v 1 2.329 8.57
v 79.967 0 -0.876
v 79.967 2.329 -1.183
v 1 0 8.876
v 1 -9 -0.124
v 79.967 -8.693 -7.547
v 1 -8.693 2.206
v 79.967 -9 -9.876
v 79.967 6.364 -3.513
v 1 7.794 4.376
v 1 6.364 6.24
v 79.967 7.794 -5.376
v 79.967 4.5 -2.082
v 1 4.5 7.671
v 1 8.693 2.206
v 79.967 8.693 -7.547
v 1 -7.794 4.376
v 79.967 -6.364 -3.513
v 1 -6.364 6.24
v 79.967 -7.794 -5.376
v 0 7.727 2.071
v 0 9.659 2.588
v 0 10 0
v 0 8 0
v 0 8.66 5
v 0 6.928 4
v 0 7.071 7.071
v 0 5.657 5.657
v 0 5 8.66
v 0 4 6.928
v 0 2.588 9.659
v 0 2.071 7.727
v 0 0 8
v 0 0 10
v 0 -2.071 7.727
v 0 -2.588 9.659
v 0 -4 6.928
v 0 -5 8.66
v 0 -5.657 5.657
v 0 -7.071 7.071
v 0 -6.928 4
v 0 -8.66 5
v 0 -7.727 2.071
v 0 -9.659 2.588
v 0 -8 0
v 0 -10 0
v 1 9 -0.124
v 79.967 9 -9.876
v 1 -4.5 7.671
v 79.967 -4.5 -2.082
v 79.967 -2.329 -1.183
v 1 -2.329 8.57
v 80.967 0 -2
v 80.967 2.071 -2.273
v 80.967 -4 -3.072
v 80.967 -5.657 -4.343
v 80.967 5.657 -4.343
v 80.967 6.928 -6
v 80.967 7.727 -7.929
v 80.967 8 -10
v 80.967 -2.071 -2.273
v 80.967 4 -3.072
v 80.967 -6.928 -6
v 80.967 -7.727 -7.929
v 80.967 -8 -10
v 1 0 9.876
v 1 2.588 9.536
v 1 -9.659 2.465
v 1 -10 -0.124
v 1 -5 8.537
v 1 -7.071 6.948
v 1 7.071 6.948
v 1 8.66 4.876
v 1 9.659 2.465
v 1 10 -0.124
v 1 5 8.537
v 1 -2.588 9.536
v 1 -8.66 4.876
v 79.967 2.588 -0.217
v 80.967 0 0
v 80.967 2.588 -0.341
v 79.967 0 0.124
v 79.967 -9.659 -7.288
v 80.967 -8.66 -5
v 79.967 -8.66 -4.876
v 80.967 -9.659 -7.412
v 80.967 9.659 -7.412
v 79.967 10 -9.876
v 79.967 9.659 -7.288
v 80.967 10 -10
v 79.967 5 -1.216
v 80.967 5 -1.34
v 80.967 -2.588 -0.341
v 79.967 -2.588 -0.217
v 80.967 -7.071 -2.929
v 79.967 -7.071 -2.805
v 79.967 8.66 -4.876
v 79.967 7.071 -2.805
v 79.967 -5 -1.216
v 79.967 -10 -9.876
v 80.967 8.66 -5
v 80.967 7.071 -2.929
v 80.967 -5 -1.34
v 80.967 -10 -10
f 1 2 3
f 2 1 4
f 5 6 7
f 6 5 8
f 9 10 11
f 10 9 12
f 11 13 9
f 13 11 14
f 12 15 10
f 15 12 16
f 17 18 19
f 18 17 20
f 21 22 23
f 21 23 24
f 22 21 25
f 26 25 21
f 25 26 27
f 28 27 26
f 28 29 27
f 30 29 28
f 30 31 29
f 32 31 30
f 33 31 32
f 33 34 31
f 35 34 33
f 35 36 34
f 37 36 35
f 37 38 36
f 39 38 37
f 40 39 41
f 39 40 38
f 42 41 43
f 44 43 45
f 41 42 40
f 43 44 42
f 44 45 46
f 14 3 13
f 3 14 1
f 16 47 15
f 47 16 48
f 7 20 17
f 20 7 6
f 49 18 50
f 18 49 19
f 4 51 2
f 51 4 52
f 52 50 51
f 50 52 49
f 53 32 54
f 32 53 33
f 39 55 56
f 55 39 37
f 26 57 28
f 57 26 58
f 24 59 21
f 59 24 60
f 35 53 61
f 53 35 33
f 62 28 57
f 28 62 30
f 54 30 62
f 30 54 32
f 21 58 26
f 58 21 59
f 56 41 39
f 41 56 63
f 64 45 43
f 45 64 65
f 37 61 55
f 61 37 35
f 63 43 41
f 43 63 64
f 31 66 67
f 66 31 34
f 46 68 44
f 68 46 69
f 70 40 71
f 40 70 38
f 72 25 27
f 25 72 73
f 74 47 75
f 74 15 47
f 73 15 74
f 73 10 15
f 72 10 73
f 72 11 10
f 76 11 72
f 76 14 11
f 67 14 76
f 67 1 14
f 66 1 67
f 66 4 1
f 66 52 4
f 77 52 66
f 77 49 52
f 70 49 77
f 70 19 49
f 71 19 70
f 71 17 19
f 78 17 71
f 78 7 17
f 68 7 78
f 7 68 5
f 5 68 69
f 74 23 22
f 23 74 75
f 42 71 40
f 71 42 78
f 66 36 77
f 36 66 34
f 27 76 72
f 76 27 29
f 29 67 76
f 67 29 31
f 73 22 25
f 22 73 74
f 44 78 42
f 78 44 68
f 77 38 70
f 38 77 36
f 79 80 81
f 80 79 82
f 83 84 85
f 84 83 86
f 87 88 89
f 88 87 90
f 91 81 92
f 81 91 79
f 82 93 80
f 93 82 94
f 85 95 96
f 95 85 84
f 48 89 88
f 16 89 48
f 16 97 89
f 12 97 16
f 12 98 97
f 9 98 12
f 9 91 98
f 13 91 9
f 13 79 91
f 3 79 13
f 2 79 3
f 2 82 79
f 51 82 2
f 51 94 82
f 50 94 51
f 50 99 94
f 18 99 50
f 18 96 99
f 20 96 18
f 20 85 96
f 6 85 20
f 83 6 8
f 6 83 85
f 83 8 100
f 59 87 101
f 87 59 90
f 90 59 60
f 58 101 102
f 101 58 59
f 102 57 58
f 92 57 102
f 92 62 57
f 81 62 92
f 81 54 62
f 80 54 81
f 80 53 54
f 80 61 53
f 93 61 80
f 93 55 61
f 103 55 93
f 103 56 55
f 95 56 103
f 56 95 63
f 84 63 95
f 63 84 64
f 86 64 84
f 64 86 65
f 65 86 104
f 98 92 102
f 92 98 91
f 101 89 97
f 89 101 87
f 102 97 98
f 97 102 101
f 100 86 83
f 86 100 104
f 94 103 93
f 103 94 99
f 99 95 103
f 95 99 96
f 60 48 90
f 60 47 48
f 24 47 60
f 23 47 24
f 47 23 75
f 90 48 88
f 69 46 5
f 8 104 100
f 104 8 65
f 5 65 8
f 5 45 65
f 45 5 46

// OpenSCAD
// file: ../build_environments.scad
// build_environments.scad: modules to build level sections
//

module pool(diameter=10.0, wall_height=2.0, step_width=3.0, connections=[])
{
    difference() {
        union() {
        difference() {
            cylinder(h=0.5,r1=diameter+step_width,r2=diameter+step_width,$fn=48);
            translate([0,0,-0.1])
                cylinder(h=0.7,r1=diameter,r2=diameter,$fn=48);
        }
        difference() {
            cylinder(h=wall_height,r1=diameter+step_width+1.0,r2=diameter+step_width+1.0,$fn=48);
            translate([0,0,-0.1])
                cylinder(h=wall_height+0.2,r1=diameter+step_width,r2=diameter+step_width,$fn=48);
        }
        }
    
        for (c = connections)
        {
            rotate([0,90,0]) {
                angle = atan2(c[1],c[0]);
                rotate([-angle,0,0]) {
                    cylinder(h=diameter+5.0,r1=c[2],r2=c[2],$fn=48);
                }
            }
        }
    }
}

module straight(length=10.0, width=2.0, dy1=0.0, dy2=0.0, dz=0.0)
{
    dims = [0, 0, 0, 0, 0, (dz/length)];
    matrix = [
        [ 1, dims[0], dims[1], 0 ],
        [ dims[2], 1, dims[4], 0 ],
        [ dims[5], dims[3], 1, 0 ],
        [ 0, 0, 0, 1 ]
    ];
    multmatrix(matrix)
    difference() {
        translate([dy1,0,0])
        union() {
            rotate([0,90,0]) {
                difference() {
                    cylinder(h=(length-dy1-dy2),r1=width+1.0,r2=width+1.0,$fn=24);
                    translate([0,0,-0.1])
                        cylinder(h=(length-dy1-dy2+0.2),r1=width,r2=width,$fn=24);
                }
                difference() {
                    cylinder(h=1.0,r1=width+2.0,r2=width+2.0,$fn=24);
                    translate([0,0,-0.1])
                        cylinder(h=1.2,r1=width,r2=width,$fn=24);
                }
                translate([0,0,(length-dy1-dy2)-1.0]) {
                    difference() {
                        cylinder(h=1.0,r1=width+2.0,r2=width+2.0,$fn=24);
                        translate([0,0,-0.1])
                            cylinder(h=1.2,r1=width,r2=width,$fn=24);
                    }
                }
            }
        }
        translate([0,0,-(2*width+4.0)/2])
            cube([3*length,3*length,2*width+4.0],center=true);
    }
}

module curve(p0=[0,0], center=[0,0], dir=1, angle=0.0, width=2.0)
{
    radius = sqrt((p0[0]-center[0])*(p0[0]-center[0]) + (p0[1]-center[1])*(p0[1]-center[1]));
    if (dir == 0) {
        difference() {
            rotate([0,0,-90])
            difference() {
                rotate_extrude(angle = angle, convexity = 10, $fn=32)
                    translate([radius, 0, 0])
                        circle(r = width+1.0,$fn=24);
                rotate([0,0,-1.0])
                    rotate_extrude(angle = angle+2.0, convexity = 10, $fn=32)
                        translate([radius, 0, 0])
                            circle(r = width,$fn=24);
            }
            translate([0,0,-(2*width+4.0)/2])
                cube([5*radius,5*radius,2*width+4.0],center=true);
        }
    }
    else {
        difference() {
            rotate([0,0,90])
            difference() {
                rotate_extrude(angle = -angle, convexity = 10, $fn=32)
                    translate([radius, 0, 0])
                        circle(r = width+1.0,$fn=24);
                rotate([0,0,1.0])
                    rotate_extrude(angle = -angle-2.0, convexity = 10, $fn=32)
                        translate([radius, 0, 0])
                            circle(r = width,$fn=24);
            }
            translate([0,0,-(2*width+4.0)/2])
                cube([5*radius,5*radius,2*width+4.0],center=true);
        }
    }

}

// test pool
//pool(diameter=12.0000, wall_height=3.0000, step_width=3.0000, connections=[[0.0000,-26.0000,2.0000], [23.6074,0.0000,2.0000]]);

// test straight, slope
//straight(length=26.0000, width=2.0000, dy1=11.8322, dy2=6.7082, dz=0.0000);
//straight(length=29.1549, width=12.0000, dy1=0.0000, dy2=0.0000, dz=-15.0000);

// test curve
//curve(p0=[23.6074, 0.0000], center=[23.6074, 5.0000], dir=0, angle=60.1011, width=2.0000);
//curve(p0=[33.6426, 12.4219], center=[37.9771, 9.9295], dir=1, angle=120.4627, width=2.0000);
// main file
use <../build_environments.scad>;
straight(length=80.9670, width=8.0000, dy1=0.0000, dy2=0.0000, dz=-10.0000);
